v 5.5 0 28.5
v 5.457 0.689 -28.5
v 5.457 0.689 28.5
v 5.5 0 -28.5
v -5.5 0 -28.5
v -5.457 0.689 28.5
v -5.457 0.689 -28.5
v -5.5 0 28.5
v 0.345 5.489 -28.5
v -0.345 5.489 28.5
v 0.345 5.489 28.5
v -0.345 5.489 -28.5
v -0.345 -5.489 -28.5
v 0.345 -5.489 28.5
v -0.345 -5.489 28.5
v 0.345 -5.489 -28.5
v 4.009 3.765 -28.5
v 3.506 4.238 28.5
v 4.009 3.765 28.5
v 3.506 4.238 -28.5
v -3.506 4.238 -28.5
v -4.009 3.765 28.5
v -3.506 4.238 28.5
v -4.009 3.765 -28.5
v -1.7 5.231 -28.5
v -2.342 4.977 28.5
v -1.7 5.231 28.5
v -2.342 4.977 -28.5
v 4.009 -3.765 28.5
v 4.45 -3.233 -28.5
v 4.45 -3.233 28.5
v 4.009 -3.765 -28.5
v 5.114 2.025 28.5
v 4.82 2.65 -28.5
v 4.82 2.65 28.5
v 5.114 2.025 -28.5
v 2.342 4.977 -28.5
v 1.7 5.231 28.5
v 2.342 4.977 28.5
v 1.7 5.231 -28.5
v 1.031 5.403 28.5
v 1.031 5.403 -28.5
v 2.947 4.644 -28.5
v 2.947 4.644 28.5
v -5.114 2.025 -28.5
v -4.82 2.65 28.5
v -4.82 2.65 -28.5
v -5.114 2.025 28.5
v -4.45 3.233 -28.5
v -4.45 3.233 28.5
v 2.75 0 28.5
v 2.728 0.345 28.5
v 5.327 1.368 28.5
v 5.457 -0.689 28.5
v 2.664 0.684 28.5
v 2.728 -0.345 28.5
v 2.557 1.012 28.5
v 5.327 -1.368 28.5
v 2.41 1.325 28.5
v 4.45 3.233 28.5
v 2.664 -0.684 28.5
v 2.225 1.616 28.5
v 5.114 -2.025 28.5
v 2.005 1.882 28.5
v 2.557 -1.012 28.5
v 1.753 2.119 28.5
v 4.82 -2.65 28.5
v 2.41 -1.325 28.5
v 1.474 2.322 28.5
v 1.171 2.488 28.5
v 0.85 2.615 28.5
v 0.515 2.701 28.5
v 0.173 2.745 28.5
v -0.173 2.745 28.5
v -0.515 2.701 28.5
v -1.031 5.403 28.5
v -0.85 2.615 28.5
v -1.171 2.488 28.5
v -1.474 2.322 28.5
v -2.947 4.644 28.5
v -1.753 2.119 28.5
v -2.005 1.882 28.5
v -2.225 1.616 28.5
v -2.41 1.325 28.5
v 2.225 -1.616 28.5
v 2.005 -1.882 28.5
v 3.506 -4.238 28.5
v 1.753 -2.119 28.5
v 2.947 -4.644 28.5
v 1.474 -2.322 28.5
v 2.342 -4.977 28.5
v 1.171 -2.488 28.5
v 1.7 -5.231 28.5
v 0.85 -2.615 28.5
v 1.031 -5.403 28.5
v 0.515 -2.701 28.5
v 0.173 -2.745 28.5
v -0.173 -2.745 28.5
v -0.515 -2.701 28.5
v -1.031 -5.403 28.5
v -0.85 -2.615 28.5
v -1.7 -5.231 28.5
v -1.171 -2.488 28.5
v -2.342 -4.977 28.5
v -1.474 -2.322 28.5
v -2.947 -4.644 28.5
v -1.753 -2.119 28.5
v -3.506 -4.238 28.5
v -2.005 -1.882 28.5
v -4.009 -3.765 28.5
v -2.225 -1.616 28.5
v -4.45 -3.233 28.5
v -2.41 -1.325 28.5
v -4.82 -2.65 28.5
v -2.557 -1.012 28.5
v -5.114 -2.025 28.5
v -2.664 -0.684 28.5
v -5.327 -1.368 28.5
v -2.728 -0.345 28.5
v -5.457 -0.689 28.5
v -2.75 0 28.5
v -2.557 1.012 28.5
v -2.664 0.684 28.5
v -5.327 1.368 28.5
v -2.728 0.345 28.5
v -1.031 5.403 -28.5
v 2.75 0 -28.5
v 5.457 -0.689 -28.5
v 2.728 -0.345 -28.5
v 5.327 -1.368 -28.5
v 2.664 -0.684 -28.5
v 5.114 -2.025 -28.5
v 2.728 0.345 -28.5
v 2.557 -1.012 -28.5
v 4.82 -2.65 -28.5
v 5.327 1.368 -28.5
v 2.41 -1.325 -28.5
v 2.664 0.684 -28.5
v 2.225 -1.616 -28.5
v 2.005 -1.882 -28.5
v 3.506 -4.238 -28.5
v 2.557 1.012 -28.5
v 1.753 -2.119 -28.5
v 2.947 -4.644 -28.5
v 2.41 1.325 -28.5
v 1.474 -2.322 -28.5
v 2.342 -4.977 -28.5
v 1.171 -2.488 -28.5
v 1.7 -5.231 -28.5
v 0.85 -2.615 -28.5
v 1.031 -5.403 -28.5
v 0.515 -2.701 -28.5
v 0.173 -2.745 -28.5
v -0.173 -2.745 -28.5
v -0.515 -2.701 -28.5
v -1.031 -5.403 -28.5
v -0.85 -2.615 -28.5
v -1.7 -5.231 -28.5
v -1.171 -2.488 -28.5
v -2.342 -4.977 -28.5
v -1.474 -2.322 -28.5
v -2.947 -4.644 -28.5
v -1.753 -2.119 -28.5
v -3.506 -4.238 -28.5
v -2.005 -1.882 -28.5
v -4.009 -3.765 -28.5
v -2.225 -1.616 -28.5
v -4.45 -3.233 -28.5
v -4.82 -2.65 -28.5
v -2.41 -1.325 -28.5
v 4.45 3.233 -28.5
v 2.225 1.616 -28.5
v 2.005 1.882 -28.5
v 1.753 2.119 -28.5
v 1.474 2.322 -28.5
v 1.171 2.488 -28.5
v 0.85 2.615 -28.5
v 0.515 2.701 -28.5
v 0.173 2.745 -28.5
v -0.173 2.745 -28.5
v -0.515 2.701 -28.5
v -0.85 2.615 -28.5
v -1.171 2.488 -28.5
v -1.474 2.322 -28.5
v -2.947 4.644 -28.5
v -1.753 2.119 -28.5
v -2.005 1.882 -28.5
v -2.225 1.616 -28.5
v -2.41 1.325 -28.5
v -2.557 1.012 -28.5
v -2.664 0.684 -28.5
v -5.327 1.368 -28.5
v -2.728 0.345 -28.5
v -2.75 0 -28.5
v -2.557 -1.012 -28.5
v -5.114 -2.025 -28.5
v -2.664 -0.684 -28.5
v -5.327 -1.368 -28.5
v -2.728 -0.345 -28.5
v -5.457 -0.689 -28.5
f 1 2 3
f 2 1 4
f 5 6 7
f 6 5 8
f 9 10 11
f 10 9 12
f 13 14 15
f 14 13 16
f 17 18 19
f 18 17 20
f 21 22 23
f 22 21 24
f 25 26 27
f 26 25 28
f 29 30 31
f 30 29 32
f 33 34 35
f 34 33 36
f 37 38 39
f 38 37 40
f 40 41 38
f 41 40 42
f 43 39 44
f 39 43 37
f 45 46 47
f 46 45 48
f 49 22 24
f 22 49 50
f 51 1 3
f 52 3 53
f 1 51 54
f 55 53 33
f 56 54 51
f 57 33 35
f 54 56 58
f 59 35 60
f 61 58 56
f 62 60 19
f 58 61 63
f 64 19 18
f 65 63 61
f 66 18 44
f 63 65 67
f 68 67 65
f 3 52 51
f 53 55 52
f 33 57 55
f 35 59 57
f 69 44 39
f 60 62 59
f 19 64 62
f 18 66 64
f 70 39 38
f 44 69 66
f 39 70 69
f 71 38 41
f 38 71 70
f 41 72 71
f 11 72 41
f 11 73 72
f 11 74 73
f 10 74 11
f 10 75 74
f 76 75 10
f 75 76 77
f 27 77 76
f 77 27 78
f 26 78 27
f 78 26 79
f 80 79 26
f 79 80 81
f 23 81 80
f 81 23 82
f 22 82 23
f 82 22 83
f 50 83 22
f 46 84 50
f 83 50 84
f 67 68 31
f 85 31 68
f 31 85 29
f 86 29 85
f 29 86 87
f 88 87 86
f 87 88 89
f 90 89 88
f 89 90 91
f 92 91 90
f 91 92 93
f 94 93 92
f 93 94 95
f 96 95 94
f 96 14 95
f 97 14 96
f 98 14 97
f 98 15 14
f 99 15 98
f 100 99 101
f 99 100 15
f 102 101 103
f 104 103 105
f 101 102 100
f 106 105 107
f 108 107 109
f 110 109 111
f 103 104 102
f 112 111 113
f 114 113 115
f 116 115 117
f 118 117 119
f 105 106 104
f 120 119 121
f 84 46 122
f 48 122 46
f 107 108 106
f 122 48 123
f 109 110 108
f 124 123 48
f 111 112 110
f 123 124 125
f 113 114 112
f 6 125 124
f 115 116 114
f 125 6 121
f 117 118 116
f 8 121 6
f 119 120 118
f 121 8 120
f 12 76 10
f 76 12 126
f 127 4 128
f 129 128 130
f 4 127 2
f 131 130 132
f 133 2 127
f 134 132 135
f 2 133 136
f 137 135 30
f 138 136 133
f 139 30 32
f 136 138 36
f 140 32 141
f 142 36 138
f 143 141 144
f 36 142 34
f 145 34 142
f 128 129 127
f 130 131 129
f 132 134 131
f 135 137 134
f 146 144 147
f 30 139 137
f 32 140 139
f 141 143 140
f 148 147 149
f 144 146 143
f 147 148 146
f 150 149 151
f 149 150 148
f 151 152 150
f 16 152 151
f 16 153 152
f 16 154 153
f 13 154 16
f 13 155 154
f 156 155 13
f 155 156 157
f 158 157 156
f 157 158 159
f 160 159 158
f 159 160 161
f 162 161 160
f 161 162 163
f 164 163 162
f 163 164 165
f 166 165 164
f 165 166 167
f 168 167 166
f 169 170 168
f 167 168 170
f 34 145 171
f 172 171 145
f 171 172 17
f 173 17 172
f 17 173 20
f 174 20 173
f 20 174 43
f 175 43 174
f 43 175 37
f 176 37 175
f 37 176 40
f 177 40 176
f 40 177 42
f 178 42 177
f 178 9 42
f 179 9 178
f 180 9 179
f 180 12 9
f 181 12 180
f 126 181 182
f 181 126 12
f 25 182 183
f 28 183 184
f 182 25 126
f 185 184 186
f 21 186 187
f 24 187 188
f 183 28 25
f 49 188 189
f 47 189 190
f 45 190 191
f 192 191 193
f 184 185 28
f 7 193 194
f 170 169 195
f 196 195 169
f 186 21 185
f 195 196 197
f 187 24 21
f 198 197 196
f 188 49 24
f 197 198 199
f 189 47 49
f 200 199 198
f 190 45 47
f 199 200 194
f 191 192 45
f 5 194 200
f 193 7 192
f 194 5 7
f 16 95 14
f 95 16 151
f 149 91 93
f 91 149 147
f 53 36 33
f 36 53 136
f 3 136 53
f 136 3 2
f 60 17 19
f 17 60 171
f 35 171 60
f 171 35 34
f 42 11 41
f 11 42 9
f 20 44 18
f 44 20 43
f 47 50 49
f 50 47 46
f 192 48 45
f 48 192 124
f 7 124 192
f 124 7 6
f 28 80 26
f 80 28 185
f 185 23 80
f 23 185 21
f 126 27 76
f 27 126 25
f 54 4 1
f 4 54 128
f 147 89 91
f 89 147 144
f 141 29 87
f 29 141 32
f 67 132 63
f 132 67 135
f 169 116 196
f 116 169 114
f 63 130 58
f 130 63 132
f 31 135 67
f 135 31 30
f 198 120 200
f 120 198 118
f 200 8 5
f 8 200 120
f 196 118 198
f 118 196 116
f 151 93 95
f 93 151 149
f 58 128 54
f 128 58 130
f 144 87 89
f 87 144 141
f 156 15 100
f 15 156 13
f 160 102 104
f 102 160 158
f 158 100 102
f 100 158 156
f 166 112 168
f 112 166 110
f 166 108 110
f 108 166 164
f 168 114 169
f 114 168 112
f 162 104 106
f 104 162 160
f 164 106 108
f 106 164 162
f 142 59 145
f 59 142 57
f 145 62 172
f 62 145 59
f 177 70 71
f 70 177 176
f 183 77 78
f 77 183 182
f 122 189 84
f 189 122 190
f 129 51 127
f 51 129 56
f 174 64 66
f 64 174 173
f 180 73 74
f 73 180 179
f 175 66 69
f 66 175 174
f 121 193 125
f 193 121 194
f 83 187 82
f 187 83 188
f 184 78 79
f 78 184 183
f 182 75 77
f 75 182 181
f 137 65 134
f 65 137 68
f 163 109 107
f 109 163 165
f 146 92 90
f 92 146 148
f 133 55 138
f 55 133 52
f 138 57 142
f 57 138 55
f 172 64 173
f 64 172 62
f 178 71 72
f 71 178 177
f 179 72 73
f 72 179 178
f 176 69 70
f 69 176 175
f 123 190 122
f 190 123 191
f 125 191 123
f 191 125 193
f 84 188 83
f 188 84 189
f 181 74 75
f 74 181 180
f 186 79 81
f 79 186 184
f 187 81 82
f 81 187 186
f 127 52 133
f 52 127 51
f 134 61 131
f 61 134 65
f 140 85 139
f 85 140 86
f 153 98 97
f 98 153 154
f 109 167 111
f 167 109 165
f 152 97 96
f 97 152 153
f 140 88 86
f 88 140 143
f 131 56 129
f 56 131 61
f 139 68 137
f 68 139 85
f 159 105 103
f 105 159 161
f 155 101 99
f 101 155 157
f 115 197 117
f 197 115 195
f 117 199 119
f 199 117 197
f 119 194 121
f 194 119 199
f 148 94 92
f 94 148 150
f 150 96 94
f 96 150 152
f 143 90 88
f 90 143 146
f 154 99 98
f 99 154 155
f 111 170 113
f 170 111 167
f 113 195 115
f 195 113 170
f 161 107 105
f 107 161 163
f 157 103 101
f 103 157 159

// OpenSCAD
$fn = 50;


difference() {
	union() {
		translate(v = [0, 0, -28.5000000000]) {
			cylinder(h = 57, r = 5.5000000000);
		}
	}
	union() {
		translate(v = [0, 0, -100.0000000000]) {
			cylinder(h = 200, r = 2.7500000000);
		}
	}
}
